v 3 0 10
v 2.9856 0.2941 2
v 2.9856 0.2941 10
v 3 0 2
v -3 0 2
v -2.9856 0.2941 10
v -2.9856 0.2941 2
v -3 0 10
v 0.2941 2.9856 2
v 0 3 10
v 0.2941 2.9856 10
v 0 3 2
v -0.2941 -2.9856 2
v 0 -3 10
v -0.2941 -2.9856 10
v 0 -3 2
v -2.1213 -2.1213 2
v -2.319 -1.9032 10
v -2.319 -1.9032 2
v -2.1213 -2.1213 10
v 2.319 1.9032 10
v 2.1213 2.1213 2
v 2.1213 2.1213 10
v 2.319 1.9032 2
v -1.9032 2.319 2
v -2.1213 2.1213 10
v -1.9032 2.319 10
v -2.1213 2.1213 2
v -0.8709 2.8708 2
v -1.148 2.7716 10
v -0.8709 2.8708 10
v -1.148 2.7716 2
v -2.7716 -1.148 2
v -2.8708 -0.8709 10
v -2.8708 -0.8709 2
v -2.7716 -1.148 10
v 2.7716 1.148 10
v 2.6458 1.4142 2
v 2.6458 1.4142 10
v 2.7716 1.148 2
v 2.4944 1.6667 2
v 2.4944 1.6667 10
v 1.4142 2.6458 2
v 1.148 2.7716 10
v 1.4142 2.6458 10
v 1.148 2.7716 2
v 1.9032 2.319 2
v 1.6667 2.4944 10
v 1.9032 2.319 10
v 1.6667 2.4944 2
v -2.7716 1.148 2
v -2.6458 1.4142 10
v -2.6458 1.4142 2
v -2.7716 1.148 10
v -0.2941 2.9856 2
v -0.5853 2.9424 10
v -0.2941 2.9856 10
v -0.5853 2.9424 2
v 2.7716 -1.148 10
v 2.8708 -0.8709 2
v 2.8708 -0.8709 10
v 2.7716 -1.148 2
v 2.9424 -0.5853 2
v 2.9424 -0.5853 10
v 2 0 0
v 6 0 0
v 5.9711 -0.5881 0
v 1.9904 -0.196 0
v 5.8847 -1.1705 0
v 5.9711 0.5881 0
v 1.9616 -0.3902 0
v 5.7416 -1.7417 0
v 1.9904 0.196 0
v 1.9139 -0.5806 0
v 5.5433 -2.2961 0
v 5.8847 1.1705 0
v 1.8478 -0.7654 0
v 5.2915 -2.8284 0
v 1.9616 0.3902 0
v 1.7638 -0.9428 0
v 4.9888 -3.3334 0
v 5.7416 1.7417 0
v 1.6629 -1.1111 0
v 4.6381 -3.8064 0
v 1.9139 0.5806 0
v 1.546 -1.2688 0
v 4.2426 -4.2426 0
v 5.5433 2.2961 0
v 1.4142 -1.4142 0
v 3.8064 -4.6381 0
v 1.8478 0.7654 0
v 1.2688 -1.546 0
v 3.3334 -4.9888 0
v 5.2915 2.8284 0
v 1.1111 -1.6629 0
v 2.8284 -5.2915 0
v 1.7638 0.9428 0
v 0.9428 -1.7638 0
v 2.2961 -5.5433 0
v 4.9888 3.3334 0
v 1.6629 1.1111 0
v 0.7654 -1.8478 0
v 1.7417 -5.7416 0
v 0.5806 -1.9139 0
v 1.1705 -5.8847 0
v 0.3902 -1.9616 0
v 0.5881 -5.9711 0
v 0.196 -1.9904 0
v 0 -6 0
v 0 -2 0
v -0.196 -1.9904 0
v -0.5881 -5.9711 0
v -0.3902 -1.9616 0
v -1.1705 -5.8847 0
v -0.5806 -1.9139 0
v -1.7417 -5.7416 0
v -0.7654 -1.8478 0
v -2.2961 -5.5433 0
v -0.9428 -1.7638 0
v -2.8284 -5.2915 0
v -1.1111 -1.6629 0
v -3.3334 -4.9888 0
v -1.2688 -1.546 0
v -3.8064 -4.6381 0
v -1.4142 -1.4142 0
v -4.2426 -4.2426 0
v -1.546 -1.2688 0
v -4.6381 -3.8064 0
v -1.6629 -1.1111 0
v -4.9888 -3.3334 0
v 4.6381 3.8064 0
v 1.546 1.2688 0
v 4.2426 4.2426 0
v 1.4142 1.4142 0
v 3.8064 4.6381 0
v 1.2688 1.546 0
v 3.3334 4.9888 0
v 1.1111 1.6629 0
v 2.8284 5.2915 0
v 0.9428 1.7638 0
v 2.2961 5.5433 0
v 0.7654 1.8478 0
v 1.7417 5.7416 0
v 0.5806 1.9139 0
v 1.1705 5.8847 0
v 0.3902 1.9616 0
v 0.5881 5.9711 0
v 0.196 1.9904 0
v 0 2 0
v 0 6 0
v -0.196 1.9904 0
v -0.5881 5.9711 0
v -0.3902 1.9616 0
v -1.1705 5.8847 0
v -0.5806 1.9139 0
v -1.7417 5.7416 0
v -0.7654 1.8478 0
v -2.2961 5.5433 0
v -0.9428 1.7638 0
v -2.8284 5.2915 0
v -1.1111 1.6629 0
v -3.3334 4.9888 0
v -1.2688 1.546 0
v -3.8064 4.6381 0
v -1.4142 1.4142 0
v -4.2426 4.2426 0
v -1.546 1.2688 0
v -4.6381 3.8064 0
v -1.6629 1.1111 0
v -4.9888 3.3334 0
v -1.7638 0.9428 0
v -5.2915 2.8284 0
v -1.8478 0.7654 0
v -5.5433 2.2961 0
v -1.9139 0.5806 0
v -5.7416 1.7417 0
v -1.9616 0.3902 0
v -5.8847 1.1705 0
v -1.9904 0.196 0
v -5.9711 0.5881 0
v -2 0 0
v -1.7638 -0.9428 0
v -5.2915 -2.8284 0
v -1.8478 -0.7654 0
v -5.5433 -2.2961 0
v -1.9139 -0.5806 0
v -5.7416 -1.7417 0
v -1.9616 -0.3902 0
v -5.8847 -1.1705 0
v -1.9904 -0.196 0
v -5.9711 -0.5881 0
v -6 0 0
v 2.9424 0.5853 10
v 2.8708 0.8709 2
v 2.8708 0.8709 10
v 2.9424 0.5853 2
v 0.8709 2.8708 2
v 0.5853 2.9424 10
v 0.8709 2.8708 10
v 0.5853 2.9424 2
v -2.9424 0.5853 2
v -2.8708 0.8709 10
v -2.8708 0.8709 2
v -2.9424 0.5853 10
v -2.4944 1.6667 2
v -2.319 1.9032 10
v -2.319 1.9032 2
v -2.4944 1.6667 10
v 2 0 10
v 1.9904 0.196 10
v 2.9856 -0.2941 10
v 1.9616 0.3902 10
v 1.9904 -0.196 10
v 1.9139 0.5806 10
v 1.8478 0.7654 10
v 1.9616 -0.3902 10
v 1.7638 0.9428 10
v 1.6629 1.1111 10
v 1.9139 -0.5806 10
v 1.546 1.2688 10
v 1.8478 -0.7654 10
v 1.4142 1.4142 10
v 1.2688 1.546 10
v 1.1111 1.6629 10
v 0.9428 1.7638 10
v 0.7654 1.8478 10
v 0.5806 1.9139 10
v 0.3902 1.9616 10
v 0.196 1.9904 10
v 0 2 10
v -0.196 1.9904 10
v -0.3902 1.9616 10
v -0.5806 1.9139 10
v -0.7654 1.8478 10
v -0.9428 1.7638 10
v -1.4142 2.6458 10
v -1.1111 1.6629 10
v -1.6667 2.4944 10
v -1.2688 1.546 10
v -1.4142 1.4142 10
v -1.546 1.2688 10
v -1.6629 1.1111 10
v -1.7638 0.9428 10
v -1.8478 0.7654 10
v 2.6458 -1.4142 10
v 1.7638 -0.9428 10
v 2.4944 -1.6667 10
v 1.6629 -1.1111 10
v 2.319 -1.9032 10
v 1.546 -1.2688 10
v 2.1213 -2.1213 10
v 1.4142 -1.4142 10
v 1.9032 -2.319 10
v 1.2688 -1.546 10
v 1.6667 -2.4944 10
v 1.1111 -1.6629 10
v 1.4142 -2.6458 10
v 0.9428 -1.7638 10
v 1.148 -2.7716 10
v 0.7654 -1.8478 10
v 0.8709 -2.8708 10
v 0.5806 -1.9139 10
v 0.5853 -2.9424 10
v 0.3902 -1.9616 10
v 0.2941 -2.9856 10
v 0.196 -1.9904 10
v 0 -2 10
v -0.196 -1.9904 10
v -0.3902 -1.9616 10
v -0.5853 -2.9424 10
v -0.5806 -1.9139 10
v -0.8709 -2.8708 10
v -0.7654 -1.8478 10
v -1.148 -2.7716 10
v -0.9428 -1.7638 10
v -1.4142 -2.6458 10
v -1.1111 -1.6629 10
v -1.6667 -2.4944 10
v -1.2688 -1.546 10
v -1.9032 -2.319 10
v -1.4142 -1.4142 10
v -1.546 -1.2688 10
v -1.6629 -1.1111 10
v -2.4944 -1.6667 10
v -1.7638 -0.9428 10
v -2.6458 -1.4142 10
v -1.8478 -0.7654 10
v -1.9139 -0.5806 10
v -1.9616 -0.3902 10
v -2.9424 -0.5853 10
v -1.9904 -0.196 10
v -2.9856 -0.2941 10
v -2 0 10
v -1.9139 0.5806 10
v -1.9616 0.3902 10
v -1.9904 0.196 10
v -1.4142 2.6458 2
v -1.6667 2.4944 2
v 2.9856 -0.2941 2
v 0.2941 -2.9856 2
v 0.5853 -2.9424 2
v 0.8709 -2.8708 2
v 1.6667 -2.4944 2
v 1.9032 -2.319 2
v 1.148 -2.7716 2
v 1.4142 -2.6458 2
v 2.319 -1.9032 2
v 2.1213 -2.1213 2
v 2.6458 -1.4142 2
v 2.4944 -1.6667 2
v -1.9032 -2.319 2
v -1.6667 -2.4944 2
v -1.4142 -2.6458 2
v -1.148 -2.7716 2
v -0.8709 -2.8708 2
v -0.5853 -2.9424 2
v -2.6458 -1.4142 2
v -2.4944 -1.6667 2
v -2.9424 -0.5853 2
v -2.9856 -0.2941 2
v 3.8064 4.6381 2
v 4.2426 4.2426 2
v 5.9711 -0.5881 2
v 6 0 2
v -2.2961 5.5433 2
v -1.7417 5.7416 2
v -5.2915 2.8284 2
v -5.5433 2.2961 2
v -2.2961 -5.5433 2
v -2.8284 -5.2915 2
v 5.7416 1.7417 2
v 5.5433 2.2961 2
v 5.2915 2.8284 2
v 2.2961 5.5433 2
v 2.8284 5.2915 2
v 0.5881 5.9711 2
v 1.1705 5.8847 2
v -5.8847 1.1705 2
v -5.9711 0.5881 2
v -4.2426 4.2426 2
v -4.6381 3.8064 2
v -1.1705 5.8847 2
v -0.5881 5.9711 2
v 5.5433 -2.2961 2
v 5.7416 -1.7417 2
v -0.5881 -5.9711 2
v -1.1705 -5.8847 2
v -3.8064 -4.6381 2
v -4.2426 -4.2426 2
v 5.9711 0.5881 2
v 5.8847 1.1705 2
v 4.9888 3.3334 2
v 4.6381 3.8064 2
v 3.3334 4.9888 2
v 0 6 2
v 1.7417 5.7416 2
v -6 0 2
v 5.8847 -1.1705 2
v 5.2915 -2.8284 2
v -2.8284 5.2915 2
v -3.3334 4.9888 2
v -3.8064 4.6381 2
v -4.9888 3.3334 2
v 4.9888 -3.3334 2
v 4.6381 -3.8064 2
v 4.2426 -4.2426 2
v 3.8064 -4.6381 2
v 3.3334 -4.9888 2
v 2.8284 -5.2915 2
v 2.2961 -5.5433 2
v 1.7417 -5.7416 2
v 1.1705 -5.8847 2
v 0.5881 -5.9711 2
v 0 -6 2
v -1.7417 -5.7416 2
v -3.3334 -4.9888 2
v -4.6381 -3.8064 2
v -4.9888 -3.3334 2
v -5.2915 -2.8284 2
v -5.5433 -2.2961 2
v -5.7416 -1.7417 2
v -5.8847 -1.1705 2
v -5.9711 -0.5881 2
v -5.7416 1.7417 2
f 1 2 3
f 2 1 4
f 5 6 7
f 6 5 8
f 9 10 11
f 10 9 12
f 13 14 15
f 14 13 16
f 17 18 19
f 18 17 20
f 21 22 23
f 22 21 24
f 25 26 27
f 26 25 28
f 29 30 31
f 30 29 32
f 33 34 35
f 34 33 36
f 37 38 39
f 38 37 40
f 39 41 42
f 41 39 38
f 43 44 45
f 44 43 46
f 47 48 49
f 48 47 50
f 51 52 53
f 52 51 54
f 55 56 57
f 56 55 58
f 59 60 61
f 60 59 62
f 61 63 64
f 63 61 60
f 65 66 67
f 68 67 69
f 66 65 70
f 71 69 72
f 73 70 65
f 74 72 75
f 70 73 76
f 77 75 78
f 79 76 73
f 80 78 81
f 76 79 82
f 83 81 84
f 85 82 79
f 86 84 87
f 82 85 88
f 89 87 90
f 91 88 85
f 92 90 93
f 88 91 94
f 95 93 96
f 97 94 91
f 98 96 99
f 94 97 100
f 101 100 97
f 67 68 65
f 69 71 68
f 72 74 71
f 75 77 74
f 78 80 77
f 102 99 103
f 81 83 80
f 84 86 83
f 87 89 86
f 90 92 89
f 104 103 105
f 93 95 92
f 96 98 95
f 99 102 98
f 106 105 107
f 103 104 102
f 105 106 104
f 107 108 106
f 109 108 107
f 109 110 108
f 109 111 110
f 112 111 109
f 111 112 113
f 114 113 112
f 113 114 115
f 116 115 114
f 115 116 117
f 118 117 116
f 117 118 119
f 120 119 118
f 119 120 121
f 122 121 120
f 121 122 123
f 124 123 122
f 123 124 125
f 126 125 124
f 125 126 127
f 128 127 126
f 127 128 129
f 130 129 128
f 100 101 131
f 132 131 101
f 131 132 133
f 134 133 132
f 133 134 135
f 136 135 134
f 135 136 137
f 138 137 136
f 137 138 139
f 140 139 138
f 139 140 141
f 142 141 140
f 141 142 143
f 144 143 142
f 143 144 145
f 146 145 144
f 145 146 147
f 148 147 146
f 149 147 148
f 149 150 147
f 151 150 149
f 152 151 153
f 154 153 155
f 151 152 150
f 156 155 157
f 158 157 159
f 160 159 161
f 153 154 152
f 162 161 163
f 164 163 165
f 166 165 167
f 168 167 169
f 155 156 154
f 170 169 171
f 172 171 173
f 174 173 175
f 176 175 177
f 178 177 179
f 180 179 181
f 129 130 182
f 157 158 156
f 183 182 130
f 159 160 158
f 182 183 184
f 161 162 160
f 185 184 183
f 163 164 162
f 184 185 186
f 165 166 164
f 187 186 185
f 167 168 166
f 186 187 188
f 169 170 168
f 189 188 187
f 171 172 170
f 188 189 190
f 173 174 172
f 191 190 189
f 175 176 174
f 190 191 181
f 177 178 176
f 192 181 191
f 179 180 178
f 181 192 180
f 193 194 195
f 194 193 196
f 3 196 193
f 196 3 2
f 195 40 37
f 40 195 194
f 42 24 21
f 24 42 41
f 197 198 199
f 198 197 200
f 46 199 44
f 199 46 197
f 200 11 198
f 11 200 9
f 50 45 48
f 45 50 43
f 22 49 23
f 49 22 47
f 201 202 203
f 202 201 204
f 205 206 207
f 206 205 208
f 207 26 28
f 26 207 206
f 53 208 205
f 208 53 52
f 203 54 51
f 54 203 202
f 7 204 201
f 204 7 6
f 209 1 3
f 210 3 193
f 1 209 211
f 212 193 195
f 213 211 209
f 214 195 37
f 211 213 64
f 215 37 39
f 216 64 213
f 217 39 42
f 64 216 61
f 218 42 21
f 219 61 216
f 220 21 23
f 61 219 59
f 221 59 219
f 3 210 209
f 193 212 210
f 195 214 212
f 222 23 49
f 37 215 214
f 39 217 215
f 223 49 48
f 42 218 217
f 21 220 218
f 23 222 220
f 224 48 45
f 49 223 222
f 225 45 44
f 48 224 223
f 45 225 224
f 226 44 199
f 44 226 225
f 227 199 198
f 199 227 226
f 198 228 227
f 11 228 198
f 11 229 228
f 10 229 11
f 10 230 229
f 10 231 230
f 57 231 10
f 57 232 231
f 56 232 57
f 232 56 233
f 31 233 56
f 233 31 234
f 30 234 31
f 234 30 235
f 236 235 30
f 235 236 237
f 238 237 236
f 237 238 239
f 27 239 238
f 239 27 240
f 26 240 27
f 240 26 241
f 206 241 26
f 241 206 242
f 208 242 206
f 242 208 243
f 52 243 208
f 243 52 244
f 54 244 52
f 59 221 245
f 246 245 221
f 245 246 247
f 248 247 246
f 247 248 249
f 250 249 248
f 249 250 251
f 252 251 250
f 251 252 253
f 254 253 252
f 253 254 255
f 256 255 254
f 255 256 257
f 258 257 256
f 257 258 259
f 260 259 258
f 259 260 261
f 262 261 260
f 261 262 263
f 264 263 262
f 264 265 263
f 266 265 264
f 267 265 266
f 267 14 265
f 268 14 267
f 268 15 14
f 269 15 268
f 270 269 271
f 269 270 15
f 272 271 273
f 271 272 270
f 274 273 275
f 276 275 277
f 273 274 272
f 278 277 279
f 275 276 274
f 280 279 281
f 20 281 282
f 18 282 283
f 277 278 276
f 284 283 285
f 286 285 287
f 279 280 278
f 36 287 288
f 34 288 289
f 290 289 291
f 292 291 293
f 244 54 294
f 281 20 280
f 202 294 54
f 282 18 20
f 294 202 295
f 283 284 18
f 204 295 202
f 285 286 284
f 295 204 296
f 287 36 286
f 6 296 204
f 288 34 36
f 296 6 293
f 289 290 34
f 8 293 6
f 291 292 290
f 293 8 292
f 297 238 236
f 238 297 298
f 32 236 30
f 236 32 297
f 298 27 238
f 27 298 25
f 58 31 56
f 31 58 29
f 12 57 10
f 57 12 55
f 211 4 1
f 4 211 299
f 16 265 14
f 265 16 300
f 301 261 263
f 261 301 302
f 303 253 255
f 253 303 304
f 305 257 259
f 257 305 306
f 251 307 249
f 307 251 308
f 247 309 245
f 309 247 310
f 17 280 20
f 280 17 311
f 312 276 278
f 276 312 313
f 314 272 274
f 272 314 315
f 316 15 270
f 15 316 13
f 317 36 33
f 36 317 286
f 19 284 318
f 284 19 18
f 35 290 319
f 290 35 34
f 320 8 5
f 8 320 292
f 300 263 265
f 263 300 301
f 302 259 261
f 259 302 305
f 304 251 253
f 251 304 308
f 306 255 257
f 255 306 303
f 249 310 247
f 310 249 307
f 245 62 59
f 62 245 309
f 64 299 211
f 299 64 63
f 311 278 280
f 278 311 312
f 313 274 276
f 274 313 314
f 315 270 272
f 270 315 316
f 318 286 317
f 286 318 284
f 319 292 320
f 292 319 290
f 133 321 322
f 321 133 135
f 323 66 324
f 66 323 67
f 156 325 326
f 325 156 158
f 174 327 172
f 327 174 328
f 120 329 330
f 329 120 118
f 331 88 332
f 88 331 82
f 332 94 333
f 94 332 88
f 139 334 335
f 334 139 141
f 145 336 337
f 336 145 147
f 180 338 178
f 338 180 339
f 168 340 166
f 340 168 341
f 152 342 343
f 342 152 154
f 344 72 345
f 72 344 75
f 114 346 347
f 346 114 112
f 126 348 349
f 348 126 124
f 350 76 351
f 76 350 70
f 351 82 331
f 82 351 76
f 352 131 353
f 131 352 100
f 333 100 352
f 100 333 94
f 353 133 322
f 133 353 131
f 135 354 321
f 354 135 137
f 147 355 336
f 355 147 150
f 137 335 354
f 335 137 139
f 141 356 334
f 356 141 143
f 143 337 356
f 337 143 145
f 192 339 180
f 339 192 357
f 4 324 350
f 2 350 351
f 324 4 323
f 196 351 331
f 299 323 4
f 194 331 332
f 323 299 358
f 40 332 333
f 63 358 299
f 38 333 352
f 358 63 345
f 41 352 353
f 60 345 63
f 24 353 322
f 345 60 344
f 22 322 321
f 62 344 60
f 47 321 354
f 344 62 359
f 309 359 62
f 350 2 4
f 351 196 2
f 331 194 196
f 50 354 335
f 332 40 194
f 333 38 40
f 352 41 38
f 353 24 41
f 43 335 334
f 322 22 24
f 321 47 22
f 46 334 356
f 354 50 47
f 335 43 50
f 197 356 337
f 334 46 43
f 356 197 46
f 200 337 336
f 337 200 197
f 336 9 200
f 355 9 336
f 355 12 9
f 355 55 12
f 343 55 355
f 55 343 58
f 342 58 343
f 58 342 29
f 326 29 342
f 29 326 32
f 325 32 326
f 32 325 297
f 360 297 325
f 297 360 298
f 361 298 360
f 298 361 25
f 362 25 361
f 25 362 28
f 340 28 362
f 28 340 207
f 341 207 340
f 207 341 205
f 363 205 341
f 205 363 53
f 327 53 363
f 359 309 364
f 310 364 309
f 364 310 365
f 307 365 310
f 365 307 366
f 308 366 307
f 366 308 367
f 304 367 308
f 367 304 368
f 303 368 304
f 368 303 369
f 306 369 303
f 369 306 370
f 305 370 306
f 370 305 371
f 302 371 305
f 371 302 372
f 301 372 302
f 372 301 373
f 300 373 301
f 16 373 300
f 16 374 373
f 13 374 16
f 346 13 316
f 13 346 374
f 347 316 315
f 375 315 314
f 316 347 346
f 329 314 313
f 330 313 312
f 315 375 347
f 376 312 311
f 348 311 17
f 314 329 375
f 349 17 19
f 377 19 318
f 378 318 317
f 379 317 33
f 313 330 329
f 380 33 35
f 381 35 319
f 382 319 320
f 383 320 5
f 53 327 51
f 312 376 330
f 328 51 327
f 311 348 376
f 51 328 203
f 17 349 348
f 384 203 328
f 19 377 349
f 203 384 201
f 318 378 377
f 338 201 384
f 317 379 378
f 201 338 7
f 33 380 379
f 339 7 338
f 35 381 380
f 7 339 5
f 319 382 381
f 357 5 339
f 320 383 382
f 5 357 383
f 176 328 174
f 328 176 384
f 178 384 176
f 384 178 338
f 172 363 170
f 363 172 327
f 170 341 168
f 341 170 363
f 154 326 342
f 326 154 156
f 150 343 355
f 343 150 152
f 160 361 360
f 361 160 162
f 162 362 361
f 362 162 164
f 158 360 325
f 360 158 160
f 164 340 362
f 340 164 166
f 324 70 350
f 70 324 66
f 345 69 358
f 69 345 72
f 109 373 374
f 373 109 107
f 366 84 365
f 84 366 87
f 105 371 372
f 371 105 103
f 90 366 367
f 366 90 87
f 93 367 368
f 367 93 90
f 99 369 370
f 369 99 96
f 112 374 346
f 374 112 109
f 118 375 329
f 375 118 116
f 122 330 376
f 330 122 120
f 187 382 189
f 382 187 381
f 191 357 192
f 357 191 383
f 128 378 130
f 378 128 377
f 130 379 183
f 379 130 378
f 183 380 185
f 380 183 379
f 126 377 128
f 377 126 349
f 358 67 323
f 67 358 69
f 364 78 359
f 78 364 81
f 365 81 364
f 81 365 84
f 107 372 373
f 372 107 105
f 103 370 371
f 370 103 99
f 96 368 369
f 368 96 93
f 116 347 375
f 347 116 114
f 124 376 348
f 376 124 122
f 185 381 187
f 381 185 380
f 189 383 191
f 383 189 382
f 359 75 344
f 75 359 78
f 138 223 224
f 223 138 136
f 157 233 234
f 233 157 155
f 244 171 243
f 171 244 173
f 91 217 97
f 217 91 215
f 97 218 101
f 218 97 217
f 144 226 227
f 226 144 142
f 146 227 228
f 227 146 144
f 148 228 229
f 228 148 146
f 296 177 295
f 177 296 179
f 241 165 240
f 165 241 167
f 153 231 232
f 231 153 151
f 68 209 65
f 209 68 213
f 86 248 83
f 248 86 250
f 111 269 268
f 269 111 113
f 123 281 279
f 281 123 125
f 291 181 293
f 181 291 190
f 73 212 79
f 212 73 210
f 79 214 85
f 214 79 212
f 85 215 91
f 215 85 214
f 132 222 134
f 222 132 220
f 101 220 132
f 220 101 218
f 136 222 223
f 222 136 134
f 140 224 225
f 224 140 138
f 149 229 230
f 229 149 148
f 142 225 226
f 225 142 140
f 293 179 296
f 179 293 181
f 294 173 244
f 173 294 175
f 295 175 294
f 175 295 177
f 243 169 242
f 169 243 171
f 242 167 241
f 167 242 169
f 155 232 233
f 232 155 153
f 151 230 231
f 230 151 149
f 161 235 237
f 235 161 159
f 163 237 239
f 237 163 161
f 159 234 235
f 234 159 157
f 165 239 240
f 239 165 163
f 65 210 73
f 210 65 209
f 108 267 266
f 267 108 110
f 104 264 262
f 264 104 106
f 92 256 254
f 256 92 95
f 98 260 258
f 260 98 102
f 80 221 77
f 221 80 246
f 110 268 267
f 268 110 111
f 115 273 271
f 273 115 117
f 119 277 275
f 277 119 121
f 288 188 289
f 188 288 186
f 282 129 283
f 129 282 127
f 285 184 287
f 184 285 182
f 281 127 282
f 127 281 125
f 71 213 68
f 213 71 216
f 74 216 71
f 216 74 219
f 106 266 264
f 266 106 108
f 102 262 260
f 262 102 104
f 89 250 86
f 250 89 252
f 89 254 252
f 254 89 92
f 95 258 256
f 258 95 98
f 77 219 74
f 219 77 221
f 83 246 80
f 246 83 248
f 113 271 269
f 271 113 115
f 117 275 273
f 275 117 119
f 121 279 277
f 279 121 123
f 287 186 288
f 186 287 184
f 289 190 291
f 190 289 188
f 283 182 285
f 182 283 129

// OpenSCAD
$fn=64;
difference() {
    union() {
        cylinder(h=10, d=6);
        cylinder(h=2, d=12);
    }
    translate([0,0,-1]) cylinder(h=12, d=4);
}
